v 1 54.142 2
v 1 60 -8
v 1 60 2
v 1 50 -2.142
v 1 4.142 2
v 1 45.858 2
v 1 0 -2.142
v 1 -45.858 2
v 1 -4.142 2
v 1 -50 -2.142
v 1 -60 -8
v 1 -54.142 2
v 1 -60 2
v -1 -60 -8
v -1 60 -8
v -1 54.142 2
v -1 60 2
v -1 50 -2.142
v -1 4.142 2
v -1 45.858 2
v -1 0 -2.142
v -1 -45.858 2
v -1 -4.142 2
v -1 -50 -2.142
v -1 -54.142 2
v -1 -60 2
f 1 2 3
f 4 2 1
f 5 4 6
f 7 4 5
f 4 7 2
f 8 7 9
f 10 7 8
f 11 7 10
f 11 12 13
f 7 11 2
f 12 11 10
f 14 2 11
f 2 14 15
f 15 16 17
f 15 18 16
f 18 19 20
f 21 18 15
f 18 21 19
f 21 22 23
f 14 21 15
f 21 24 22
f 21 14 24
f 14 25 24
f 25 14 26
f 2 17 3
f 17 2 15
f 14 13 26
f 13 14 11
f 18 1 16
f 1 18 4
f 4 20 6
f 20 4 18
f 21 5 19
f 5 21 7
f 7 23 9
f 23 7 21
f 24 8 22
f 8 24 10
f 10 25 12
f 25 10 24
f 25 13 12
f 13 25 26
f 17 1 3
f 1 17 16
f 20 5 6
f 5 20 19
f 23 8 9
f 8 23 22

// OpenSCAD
difference() {
cube([2, 120, 16], true);

translate([0, 50, 12]) rotate([45, 0, 0]) cube([20, 20, 20], true);
translate([0, 0, 12]) rotate([45, 0, 0]) cube([20, 20, 20], true);
translate([0, -50, 12]) rotate([45, 0, 0]) cube([20, 20, 20], true);

translate([0, -20, 12]) cube([20, 170, 20], true);

}
